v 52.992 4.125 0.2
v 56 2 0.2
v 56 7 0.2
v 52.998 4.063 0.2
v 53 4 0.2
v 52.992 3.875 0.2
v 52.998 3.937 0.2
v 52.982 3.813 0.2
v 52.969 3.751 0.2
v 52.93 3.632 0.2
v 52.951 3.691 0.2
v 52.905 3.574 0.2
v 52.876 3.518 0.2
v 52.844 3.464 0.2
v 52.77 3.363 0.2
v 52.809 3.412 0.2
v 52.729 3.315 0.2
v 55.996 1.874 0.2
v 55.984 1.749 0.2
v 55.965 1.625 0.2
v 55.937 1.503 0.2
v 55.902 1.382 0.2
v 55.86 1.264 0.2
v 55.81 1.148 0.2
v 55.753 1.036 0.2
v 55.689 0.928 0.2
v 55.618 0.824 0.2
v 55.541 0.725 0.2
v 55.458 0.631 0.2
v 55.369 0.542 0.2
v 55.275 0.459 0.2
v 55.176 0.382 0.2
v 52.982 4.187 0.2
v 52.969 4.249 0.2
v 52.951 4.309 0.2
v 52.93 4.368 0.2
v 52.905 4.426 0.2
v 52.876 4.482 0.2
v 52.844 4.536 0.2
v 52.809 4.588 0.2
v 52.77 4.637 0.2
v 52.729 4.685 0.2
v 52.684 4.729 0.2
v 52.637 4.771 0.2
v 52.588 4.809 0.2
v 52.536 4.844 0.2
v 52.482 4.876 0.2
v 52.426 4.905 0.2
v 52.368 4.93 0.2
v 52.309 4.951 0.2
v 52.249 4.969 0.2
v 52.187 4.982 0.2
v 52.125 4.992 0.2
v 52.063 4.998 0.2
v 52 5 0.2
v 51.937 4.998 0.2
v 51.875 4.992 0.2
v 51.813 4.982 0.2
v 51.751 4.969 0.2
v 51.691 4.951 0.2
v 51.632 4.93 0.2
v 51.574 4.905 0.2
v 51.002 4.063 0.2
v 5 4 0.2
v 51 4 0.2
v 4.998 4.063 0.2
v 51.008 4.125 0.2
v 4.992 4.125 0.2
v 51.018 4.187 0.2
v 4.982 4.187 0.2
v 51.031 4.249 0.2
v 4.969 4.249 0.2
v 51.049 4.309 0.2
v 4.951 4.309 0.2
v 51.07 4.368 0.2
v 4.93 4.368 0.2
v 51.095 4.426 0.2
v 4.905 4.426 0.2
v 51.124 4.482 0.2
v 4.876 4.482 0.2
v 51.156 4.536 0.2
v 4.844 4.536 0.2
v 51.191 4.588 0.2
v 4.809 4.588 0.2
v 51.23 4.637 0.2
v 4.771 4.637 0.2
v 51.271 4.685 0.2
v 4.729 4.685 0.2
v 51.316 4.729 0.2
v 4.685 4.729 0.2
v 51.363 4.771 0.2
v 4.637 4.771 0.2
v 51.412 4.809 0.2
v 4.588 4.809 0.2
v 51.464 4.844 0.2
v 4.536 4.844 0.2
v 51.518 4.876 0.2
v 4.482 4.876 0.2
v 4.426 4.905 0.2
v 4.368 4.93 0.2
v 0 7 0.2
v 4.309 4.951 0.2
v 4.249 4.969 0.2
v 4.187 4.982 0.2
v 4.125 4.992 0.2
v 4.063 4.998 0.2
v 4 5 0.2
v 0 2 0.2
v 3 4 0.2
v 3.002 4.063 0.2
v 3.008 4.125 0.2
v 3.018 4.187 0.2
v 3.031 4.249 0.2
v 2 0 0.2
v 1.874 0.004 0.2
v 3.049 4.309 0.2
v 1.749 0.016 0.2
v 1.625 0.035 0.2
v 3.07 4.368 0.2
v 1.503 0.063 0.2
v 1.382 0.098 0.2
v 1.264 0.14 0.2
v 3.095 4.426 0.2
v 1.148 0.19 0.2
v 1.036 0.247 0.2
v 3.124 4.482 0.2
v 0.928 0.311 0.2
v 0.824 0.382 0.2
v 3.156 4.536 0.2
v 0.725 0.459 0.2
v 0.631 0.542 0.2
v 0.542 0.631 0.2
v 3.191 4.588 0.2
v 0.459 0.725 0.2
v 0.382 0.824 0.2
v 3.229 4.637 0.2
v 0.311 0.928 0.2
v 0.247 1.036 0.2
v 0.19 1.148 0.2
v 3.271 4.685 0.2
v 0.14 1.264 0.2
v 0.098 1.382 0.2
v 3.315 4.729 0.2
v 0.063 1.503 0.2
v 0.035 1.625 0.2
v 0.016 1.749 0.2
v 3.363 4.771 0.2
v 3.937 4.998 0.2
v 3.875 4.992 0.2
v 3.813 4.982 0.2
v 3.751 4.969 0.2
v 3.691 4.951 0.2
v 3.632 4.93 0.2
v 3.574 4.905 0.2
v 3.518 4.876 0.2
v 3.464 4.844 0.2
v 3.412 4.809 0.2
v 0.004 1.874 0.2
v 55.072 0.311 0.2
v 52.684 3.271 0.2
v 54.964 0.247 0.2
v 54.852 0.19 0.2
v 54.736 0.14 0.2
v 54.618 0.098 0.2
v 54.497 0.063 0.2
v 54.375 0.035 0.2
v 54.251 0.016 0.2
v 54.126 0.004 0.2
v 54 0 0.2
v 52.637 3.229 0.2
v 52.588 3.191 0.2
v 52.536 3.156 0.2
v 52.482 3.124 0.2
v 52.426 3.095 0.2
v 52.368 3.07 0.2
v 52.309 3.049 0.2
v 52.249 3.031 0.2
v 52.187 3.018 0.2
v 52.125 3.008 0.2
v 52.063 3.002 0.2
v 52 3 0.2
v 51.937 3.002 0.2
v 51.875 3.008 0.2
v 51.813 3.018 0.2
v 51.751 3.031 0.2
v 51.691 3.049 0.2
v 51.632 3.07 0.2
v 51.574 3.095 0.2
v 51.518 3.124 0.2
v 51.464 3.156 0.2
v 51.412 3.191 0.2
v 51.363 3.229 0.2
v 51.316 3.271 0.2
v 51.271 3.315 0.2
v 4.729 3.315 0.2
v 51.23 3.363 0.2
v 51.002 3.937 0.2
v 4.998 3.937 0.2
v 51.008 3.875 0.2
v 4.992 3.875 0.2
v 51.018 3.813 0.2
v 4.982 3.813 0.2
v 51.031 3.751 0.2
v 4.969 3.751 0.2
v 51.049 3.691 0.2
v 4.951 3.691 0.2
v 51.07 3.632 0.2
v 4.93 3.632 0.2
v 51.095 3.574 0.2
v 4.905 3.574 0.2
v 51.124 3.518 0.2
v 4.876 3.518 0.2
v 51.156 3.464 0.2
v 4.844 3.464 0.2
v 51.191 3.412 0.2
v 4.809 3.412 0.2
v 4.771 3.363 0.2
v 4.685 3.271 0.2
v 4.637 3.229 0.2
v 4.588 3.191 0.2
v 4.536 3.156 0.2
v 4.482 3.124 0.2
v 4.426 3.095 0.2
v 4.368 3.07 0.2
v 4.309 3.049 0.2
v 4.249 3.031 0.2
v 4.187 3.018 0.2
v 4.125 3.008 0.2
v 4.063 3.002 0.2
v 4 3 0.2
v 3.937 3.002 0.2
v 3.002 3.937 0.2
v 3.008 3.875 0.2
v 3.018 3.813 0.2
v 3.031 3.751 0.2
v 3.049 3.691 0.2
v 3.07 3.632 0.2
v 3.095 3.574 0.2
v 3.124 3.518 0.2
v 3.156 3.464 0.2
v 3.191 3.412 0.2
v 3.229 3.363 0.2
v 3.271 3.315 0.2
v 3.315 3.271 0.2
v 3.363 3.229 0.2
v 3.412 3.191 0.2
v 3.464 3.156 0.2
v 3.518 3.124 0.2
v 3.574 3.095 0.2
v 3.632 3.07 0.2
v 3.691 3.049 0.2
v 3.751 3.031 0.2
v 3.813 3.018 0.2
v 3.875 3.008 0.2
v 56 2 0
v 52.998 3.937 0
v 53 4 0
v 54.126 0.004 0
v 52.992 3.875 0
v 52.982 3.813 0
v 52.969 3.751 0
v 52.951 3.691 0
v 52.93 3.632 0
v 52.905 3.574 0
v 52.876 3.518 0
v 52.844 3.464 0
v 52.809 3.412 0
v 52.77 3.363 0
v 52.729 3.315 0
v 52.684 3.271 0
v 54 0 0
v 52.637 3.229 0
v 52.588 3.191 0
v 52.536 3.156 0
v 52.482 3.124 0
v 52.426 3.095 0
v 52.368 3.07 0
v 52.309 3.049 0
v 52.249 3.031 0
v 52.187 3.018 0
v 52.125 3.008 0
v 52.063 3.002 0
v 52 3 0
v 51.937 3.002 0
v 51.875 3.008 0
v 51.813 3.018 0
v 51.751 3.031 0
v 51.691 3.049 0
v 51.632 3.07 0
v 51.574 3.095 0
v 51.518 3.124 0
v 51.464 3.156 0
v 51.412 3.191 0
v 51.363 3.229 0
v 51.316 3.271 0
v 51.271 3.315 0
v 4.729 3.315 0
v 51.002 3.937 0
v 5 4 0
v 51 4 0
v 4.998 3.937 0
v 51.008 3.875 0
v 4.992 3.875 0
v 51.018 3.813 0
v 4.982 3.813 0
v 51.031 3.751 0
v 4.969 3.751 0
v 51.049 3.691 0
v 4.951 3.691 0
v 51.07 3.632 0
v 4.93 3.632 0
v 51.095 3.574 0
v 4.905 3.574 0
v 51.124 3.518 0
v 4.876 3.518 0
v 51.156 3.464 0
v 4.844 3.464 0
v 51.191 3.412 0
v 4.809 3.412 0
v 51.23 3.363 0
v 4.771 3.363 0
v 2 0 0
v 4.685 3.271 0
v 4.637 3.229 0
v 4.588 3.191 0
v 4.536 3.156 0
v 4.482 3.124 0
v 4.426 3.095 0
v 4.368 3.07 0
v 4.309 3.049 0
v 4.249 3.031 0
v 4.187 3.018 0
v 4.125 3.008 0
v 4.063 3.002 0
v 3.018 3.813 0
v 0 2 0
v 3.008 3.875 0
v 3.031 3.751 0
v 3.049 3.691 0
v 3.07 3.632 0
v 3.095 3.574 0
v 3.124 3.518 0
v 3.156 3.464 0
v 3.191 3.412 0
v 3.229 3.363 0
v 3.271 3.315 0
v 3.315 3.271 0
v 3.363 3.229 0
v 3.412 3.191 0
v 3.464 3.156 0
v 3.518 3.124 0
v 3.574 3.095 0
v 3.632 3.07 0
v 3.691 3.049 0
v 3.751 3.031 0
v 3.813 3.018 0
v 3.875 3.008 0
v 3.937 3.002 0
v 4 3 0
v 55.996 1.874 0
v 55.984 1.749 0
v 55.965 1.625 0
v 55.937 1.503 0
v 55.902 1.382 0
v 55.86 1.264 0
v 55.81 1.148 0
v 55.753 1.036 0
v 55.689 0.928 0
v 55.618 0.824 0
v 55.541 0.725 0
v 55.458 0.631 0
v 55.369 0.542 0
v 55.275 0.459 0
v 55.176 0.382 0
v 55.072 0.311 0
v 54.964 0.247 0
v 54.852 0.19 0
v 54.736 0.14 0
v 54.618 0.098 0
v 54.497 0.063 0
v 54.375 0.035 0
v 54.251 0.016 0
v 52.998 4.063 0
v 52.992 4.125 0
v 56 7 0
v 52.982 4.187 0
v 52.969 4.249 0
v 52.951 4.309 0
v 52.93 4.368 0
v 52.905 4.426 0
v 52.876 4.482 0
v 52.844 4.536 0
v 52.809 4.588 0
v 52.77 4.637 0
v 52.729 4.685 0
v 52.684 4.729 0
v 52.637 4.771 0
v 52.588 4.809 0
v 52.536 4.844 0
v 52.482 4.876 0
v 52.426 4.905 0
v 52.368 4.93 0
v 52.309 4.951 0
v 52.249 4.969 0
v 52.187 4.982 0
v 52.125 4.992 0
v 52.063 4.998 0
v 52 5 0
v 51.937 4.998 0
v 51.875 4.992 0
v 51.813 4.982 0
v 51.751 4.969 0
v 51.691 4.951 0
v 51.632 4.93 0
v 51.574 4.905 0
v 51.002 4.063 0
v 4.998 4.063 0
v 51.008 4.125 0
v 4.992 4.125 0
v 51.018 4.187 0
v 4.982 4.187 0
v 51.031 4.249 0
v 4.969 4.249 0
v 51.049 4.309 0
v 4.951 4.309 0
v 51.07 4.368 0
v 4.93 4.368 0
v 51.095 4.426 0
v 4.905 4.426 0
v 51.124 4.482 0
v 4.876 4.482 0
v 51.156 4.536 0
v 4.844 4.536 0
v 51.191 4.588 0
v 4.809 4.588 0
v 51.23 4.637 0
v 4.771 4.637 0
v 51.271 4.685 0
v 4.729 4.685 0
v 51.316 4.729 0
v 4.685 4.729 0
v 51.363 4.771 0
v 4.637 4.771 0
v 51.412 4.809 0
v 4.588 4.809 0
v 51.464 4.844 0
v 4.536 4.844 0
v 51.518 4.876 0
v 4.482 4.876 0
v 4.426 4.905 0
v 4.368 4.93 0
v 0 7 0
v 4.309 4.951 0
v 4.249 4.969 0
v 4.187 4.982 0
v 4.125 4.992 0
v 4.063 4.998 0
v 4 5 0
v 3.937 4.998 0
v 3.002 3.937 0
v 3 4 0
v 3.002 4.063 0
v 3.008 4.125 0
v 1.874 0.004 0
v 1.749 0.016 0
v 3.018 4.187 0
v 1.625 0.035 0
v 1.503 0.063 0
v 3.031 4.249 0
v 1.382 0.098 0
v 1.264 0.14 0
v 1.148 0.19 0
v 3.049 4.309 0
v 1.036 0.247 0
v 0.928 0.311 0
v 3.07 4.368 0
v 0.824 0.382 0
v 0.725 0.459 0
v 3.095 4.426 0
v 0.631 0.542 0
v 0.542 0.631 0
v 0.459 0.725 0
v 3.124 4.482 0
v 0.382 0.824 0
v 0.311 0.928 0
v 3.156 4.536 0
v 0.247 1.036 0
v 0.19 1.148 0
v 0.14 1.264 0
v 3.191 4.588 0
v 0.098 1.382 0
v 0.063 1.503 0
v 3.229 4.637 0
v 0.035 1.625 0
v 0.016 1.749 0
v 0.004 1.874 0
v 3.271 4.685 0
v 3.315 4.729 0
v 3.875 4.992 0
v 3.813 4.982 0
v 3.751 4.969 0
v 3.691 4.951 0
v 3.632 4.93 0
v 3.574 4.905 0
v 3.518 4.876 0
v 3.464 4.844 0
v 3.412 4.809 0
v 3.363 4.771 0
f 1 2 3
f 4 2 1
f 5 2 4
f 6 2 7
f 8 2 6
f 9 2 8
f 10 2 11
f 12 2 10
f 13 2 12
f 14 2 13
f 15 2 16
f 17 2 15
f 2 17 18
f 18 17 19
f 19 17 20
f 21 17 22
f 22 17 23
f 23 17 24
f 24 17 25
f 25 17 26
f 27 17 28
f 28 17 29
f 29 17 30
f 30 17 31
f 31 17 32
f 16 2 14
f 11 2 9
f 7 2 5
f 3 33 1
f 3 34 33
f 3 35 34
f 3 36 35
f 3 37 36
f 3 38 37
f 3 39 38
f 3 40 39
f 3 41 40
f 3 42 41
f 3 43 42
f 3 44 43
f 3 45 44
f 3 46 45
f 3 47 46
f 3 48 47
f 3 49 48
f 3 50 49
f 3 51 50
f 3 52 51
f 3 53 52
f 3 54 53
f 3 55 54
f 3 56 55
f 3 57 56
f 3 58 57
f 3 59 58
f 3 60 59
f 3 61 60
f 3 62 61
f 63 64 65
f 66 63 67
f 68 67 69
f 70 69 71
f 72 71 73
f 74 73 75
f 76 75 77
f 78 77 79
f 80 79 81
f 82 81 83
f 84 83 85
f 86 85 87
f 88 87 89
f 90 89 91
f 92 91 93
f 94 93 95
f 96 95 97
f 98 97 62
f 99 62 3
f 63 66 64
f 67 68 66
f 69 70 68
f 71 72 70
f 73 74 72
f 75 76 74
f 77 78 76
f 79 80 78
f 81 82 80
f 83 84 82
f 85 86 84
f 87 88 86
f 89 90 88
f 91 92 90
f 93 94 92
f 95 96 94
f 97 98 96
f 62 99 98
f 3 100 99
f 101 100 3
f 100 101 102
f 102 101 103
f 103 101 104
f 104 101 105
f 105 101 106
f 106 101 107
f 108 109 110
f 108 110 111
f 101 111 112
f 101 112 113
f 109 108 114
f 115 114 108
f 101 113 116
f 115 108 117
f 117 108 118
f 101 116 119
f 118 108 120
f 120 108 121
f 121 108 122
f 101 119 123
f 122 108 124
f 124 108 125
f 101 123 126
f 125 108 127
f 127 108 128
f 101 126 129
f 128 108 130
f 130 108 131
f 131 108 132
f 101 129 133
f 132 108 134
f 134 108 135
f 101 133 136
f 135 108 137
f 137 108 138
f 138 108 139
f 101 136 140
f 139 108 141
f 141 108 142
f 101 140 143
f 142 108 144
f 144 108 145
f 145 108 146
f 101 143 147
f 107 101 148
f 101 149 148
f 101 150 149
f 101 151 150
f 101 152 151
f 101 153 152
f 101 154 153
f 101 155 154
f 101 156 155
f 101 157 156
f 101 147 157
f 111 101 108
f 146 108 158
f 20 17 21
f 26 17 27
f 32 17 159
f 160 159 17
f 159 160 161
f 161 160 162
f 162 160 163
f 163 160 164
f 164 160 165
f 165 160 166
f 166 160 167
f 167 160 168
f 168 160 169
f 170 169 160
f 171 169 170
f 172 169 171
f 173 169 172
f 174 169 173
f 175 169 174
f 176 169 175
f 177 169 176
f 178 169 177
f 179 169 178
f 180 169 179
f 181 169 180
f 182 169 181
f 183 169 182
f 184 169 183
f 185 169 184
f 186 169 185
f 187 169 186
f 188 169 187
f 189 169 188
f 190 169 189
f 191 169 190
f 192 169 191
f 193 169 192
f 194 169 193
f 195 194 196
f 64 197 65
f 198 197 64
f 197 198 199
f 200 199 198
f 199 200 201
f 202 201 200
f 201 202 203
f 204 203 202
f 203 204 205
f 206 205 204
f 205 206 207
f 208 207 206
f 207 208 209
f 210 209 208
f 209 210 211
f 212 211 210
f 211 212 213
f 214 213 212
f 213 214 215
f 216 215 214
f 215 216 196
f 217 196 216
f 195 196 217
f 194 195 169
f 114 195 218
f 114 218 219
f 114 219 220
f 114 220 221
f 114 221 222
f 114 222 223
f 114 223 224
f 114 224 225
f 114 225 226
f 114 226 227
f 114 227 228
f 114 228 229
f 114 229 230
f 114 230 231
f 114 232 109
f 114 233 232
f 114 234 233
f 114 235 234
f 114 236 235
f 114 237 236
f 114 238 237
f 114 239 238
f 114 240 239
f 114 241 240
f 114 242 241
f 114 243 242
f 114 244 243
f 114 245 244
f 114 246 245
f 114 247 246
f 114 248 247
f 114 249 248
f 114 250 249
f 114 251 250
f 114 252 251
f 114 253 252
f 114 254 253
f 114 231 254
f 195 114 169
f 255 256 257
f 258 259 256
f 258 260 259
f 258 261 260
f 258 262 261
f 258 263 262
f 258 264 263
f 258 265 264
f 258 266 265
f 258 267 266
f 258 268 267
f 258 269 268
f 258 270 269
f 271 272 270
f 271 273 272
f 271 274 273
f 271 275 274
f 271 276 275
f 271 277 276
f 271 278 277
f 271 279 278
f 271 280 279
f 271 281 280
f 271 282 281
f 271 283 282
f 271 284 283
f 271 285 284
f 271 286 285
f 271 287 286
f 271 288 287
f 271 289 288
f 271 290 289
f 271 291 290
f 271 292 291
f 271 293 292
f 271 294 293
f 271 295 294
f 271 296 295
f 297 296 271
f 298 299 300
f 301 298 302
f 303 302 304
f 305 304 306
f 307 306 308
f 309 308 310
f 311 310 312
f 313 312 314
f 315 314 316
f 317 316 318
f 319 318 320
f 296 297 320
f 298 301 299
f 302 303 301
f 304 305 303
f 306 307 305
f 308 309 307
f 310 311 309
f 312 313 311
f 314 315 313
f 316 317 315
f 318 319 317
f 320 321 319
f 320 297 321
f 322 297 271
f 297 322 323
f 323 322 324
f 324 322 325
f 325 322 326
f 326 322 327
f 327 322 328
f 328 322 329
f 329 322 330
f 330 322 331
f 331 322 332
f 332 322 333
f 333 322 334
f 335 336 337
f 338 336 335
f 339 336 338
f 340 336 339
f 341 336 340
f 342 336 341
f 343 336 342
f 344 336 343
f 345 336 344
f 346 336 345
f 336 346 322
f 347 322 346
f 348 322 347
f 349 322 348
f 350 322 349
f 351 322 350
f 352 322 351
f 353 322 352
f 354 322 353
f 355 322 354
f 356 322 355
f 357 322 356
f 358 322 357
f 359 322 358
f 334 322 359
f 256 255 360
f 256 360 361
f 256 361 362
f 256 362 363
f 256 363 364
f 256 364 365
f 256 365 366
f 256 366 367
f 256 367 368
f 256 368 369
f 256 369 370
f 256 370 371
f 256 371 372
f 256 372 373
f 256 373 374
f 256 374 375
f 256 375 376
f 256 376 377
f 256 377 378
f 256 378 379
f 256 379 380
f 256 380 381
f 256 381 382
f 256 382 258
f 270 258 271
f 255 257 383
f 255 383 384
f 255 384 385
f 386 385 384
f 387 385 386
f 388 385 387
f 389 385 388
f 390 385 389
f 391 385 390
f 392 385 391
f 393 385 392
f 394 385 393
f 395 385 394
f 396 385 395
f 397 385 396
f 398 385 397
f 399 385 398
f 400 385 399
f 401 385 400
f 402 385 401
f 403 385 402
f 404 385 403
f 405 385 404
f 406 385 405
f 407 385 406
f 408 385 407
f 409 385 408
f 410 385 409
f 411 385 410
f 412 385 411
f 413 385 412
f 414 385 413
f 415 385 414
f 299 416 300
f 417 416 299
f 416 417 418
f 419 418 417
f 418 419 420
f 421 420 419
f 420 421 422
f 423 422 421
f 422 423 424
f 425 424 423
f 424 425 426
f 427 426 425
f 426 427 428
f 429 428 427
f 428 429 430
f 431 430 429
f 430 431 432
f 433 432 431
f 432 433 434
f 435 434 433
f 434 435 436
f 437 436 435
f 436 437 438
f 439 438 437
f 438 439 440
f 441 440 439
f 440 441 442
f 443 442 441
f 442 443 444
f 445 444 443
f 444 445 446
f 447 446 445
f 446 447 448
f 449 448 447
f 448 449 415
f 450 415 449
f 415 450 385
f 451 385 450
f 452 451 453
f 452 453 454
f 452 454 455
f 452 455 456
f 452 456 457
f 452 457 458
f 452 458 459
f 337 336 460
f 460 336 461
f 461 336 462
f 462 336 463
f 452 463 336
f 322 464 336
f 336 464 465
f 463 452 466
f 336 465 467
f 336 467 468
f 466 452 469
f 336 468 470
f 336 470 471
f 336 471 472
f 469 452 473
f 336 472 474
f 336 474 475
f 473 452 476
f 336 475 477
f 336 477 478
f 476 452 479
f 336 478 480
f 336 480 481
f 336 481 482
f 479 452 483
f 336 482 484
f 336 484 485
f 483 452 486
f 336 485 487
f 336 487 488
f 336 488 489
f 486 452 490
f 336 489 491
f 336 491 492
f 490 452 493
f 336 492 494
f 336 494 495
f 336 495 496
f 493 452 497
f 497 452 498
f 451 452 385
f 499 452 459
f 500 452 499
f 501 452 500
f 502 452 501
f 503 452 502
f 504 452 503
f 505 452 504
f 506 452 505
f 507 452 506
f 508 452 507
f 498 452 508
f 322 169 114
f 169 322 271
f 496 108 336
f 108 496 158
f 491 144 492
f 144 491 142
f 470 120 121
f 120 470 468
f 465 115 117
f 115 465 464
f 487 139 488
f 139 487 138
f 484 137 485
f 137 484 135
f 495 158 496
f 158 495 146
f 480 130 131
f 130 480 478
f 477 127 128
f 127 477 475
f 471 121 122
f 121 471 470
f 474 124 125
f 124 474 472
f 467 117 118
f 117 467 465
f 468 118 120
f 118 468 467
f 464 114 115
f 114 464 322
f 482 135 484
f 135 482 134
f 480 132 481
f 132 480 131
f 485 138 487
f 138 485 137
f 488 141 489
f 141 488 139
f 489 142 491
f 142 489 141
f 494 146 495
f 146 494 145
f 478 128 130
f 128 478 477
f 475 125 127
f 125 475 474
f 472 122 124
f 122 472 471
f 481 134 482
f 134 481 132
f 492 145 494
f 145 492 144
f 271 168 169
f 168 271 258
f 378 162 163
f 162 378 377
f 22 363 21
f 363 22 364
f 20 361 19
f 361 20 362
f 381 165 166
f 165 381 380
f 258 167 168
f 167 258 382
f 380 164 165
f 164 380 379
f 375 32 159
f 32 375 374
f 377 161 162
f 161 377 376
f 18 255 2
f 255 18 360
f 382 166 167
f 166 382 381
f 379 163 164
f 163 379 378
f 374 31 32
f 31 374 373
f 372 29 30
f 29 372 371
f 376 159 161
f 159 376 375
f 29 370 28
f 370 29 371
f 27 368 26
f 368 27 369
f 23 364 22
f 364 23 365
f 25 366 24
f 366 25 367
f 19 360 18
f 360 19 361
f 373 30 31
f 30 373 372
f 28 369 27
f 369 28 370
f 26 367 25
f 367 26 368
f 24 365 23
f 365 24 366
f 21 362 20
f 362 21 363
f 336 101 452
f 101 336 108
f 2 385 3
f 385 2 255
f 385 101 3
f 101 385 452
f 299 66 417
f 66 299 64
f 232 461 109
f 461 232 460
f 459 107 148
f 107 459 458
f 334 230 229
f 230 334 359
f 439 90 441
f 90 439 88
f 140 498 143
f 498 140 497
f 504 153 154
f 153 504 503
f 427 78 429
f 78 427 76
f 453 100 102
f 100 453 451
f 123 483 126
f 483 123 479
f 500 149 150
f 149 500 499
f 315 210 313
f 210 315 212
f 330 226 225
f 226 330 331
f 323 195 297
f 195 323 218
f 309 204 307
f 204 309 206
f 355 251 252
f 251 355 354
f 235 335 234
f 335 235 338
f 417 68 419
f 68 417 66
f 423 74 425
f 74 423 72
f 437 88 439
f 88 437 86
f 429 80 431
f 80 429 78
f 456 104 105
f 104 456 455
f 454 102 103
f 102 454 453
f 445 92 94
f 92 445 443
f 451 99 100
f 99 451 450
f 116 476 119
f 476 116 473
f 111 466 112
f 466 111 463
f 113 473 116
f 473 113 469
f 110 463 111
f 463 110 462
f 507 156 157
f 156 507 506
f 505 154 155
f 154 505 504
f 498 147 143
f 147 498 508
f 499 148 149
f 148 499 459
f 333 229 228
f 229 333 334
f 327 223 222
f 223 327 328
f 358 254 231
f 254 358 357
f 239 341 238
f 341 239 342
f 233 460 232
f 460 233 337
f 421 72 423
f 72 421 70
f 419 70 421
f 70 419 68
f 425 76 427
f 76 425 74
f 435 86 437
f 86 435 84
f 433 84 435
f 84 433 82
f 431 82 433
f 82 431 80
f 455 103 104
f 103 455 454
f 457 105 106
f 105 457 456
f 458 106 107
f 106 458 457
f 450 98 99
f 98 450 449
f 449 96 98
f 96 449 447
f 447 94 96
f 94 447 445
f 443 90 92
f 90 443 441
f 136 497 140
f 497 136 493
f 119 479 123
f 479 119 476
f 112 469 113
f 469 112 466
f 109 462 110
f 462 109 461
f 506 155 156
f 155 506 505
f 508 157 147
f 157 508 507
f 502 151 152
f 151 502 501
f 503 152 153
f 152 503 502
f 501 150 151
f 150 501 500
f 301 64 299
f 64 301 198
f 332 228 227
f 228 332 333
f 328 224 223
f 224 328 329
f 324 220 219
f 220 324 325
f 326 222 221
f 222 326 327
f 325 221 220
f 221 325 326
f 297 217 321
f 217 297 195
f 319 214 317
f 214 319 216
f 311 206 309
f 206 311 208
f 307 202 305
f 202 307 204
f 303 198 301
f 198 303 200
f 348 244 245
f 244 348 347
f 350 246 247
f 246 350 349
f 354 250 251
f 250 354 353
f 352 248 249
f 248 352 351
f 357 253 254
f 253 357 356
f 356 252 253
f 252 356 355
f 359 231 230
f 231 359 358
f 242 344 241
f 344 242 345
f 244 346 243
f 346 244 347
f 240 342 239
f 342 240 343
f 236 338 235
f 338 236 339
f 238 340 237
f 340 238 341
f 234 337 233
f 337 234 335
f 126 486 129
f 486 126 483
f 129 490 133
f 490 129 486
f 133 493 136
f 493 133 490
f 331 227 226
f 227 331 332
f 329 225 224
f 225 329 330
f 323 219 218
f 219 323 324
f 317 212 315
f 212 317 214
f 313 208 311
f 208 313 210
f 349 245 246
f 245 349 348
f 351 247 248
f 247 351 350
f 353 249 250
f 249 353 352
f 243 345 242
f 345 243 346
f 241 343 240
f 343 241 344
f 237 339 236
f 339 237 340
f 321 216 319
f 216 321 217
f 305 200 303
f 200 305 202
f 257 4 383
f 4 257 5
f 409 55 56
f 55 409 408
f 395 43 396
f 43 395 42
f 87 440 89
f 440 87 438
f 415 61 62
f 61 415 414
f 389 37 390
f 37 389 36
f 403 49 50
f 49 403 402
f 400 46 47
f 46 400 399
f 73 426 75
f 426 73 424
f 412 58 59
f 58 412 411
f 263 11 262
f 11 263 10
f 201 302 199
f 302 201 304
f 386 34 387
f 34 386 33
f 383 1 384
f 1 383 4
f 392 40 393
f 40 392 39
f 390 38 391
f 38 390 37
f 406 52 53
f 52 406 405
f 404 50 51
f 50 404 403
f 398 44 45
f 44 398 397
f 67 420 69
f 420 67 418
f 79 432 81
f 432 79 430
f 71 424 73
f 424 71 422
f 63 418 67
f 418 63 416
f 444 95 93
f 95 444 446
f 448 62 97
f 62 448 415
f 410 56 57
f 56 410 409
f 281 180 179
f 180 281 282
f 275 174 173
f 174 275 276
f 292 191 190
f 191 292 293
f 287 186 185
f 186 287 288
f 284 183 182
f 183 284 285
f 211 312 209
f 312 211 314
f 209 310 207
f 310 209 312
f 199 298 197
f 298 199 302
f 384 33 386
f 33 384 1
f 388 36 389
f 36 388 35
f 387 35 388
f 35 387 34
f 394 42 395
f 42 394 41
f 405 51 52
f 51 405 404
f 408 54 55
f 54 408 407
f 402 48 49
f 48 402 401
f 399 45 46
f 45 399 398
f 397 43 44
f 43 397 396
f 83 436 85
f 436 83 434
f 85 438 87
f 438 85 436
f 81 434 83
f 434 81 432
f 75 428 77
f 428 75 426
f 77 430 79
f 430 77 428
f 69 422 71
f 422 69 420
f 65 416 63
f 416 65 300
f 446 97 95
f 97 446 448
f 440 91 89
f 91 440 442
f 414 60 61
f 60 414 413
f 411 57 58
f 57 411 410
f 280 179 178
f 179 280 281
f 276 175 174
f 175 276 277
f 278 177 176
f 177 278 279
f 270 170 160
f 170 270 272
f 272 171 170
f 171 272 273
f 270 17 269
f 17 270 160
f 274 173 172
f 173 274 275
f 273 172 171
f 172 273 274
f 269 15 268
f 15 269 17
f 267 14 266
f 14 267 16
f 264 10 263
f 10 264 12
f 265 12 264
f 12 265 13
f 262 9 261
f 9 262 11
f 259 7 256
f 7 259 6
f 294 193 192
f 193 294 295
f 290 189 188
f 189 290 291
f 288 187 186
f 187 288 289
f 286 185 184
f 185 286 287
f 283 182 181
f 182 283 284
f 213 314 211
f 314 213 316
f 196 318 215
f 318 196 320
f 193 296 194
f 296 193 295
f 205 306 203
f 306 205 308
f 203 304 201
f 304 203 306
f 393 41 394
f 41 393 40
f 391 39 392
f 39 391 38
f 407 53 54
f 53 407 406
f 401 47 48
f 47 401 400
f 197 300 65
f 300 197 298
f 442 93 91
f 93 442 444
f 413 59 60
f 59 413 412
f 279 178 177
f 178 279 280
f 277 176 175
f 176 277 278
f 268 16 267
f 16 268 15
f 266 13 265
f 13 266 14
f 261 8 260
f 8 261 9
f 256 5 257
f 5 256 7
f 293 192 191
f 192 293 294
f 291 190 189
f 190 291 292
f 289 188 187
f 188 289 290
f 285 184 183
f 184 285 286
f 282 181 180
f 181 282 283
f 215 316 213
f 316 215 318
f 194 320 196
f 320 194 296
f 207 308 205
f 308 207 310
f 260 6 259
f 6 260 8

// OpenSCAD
difference(){
    union(){
//    translate([2,0,0]) cube([52,10,0.2]);
    translate([2,0,0]) cube([52,2,0.2]);
    translate([2,2,0]) cylinder(h=0.2,r=2, $fn=100);
    translate([54,2,0]) cylinder(h=0.2,r=2, $fn=100);
    translate([0,2,0]) cube([56,5,0.2]);    
}
    translate([4,4,-1]) cylinder(h=2,r=1, $fn=100);
    translate([52,4,-1]) cylinder(h=2,r=1, $fn=100);
}
